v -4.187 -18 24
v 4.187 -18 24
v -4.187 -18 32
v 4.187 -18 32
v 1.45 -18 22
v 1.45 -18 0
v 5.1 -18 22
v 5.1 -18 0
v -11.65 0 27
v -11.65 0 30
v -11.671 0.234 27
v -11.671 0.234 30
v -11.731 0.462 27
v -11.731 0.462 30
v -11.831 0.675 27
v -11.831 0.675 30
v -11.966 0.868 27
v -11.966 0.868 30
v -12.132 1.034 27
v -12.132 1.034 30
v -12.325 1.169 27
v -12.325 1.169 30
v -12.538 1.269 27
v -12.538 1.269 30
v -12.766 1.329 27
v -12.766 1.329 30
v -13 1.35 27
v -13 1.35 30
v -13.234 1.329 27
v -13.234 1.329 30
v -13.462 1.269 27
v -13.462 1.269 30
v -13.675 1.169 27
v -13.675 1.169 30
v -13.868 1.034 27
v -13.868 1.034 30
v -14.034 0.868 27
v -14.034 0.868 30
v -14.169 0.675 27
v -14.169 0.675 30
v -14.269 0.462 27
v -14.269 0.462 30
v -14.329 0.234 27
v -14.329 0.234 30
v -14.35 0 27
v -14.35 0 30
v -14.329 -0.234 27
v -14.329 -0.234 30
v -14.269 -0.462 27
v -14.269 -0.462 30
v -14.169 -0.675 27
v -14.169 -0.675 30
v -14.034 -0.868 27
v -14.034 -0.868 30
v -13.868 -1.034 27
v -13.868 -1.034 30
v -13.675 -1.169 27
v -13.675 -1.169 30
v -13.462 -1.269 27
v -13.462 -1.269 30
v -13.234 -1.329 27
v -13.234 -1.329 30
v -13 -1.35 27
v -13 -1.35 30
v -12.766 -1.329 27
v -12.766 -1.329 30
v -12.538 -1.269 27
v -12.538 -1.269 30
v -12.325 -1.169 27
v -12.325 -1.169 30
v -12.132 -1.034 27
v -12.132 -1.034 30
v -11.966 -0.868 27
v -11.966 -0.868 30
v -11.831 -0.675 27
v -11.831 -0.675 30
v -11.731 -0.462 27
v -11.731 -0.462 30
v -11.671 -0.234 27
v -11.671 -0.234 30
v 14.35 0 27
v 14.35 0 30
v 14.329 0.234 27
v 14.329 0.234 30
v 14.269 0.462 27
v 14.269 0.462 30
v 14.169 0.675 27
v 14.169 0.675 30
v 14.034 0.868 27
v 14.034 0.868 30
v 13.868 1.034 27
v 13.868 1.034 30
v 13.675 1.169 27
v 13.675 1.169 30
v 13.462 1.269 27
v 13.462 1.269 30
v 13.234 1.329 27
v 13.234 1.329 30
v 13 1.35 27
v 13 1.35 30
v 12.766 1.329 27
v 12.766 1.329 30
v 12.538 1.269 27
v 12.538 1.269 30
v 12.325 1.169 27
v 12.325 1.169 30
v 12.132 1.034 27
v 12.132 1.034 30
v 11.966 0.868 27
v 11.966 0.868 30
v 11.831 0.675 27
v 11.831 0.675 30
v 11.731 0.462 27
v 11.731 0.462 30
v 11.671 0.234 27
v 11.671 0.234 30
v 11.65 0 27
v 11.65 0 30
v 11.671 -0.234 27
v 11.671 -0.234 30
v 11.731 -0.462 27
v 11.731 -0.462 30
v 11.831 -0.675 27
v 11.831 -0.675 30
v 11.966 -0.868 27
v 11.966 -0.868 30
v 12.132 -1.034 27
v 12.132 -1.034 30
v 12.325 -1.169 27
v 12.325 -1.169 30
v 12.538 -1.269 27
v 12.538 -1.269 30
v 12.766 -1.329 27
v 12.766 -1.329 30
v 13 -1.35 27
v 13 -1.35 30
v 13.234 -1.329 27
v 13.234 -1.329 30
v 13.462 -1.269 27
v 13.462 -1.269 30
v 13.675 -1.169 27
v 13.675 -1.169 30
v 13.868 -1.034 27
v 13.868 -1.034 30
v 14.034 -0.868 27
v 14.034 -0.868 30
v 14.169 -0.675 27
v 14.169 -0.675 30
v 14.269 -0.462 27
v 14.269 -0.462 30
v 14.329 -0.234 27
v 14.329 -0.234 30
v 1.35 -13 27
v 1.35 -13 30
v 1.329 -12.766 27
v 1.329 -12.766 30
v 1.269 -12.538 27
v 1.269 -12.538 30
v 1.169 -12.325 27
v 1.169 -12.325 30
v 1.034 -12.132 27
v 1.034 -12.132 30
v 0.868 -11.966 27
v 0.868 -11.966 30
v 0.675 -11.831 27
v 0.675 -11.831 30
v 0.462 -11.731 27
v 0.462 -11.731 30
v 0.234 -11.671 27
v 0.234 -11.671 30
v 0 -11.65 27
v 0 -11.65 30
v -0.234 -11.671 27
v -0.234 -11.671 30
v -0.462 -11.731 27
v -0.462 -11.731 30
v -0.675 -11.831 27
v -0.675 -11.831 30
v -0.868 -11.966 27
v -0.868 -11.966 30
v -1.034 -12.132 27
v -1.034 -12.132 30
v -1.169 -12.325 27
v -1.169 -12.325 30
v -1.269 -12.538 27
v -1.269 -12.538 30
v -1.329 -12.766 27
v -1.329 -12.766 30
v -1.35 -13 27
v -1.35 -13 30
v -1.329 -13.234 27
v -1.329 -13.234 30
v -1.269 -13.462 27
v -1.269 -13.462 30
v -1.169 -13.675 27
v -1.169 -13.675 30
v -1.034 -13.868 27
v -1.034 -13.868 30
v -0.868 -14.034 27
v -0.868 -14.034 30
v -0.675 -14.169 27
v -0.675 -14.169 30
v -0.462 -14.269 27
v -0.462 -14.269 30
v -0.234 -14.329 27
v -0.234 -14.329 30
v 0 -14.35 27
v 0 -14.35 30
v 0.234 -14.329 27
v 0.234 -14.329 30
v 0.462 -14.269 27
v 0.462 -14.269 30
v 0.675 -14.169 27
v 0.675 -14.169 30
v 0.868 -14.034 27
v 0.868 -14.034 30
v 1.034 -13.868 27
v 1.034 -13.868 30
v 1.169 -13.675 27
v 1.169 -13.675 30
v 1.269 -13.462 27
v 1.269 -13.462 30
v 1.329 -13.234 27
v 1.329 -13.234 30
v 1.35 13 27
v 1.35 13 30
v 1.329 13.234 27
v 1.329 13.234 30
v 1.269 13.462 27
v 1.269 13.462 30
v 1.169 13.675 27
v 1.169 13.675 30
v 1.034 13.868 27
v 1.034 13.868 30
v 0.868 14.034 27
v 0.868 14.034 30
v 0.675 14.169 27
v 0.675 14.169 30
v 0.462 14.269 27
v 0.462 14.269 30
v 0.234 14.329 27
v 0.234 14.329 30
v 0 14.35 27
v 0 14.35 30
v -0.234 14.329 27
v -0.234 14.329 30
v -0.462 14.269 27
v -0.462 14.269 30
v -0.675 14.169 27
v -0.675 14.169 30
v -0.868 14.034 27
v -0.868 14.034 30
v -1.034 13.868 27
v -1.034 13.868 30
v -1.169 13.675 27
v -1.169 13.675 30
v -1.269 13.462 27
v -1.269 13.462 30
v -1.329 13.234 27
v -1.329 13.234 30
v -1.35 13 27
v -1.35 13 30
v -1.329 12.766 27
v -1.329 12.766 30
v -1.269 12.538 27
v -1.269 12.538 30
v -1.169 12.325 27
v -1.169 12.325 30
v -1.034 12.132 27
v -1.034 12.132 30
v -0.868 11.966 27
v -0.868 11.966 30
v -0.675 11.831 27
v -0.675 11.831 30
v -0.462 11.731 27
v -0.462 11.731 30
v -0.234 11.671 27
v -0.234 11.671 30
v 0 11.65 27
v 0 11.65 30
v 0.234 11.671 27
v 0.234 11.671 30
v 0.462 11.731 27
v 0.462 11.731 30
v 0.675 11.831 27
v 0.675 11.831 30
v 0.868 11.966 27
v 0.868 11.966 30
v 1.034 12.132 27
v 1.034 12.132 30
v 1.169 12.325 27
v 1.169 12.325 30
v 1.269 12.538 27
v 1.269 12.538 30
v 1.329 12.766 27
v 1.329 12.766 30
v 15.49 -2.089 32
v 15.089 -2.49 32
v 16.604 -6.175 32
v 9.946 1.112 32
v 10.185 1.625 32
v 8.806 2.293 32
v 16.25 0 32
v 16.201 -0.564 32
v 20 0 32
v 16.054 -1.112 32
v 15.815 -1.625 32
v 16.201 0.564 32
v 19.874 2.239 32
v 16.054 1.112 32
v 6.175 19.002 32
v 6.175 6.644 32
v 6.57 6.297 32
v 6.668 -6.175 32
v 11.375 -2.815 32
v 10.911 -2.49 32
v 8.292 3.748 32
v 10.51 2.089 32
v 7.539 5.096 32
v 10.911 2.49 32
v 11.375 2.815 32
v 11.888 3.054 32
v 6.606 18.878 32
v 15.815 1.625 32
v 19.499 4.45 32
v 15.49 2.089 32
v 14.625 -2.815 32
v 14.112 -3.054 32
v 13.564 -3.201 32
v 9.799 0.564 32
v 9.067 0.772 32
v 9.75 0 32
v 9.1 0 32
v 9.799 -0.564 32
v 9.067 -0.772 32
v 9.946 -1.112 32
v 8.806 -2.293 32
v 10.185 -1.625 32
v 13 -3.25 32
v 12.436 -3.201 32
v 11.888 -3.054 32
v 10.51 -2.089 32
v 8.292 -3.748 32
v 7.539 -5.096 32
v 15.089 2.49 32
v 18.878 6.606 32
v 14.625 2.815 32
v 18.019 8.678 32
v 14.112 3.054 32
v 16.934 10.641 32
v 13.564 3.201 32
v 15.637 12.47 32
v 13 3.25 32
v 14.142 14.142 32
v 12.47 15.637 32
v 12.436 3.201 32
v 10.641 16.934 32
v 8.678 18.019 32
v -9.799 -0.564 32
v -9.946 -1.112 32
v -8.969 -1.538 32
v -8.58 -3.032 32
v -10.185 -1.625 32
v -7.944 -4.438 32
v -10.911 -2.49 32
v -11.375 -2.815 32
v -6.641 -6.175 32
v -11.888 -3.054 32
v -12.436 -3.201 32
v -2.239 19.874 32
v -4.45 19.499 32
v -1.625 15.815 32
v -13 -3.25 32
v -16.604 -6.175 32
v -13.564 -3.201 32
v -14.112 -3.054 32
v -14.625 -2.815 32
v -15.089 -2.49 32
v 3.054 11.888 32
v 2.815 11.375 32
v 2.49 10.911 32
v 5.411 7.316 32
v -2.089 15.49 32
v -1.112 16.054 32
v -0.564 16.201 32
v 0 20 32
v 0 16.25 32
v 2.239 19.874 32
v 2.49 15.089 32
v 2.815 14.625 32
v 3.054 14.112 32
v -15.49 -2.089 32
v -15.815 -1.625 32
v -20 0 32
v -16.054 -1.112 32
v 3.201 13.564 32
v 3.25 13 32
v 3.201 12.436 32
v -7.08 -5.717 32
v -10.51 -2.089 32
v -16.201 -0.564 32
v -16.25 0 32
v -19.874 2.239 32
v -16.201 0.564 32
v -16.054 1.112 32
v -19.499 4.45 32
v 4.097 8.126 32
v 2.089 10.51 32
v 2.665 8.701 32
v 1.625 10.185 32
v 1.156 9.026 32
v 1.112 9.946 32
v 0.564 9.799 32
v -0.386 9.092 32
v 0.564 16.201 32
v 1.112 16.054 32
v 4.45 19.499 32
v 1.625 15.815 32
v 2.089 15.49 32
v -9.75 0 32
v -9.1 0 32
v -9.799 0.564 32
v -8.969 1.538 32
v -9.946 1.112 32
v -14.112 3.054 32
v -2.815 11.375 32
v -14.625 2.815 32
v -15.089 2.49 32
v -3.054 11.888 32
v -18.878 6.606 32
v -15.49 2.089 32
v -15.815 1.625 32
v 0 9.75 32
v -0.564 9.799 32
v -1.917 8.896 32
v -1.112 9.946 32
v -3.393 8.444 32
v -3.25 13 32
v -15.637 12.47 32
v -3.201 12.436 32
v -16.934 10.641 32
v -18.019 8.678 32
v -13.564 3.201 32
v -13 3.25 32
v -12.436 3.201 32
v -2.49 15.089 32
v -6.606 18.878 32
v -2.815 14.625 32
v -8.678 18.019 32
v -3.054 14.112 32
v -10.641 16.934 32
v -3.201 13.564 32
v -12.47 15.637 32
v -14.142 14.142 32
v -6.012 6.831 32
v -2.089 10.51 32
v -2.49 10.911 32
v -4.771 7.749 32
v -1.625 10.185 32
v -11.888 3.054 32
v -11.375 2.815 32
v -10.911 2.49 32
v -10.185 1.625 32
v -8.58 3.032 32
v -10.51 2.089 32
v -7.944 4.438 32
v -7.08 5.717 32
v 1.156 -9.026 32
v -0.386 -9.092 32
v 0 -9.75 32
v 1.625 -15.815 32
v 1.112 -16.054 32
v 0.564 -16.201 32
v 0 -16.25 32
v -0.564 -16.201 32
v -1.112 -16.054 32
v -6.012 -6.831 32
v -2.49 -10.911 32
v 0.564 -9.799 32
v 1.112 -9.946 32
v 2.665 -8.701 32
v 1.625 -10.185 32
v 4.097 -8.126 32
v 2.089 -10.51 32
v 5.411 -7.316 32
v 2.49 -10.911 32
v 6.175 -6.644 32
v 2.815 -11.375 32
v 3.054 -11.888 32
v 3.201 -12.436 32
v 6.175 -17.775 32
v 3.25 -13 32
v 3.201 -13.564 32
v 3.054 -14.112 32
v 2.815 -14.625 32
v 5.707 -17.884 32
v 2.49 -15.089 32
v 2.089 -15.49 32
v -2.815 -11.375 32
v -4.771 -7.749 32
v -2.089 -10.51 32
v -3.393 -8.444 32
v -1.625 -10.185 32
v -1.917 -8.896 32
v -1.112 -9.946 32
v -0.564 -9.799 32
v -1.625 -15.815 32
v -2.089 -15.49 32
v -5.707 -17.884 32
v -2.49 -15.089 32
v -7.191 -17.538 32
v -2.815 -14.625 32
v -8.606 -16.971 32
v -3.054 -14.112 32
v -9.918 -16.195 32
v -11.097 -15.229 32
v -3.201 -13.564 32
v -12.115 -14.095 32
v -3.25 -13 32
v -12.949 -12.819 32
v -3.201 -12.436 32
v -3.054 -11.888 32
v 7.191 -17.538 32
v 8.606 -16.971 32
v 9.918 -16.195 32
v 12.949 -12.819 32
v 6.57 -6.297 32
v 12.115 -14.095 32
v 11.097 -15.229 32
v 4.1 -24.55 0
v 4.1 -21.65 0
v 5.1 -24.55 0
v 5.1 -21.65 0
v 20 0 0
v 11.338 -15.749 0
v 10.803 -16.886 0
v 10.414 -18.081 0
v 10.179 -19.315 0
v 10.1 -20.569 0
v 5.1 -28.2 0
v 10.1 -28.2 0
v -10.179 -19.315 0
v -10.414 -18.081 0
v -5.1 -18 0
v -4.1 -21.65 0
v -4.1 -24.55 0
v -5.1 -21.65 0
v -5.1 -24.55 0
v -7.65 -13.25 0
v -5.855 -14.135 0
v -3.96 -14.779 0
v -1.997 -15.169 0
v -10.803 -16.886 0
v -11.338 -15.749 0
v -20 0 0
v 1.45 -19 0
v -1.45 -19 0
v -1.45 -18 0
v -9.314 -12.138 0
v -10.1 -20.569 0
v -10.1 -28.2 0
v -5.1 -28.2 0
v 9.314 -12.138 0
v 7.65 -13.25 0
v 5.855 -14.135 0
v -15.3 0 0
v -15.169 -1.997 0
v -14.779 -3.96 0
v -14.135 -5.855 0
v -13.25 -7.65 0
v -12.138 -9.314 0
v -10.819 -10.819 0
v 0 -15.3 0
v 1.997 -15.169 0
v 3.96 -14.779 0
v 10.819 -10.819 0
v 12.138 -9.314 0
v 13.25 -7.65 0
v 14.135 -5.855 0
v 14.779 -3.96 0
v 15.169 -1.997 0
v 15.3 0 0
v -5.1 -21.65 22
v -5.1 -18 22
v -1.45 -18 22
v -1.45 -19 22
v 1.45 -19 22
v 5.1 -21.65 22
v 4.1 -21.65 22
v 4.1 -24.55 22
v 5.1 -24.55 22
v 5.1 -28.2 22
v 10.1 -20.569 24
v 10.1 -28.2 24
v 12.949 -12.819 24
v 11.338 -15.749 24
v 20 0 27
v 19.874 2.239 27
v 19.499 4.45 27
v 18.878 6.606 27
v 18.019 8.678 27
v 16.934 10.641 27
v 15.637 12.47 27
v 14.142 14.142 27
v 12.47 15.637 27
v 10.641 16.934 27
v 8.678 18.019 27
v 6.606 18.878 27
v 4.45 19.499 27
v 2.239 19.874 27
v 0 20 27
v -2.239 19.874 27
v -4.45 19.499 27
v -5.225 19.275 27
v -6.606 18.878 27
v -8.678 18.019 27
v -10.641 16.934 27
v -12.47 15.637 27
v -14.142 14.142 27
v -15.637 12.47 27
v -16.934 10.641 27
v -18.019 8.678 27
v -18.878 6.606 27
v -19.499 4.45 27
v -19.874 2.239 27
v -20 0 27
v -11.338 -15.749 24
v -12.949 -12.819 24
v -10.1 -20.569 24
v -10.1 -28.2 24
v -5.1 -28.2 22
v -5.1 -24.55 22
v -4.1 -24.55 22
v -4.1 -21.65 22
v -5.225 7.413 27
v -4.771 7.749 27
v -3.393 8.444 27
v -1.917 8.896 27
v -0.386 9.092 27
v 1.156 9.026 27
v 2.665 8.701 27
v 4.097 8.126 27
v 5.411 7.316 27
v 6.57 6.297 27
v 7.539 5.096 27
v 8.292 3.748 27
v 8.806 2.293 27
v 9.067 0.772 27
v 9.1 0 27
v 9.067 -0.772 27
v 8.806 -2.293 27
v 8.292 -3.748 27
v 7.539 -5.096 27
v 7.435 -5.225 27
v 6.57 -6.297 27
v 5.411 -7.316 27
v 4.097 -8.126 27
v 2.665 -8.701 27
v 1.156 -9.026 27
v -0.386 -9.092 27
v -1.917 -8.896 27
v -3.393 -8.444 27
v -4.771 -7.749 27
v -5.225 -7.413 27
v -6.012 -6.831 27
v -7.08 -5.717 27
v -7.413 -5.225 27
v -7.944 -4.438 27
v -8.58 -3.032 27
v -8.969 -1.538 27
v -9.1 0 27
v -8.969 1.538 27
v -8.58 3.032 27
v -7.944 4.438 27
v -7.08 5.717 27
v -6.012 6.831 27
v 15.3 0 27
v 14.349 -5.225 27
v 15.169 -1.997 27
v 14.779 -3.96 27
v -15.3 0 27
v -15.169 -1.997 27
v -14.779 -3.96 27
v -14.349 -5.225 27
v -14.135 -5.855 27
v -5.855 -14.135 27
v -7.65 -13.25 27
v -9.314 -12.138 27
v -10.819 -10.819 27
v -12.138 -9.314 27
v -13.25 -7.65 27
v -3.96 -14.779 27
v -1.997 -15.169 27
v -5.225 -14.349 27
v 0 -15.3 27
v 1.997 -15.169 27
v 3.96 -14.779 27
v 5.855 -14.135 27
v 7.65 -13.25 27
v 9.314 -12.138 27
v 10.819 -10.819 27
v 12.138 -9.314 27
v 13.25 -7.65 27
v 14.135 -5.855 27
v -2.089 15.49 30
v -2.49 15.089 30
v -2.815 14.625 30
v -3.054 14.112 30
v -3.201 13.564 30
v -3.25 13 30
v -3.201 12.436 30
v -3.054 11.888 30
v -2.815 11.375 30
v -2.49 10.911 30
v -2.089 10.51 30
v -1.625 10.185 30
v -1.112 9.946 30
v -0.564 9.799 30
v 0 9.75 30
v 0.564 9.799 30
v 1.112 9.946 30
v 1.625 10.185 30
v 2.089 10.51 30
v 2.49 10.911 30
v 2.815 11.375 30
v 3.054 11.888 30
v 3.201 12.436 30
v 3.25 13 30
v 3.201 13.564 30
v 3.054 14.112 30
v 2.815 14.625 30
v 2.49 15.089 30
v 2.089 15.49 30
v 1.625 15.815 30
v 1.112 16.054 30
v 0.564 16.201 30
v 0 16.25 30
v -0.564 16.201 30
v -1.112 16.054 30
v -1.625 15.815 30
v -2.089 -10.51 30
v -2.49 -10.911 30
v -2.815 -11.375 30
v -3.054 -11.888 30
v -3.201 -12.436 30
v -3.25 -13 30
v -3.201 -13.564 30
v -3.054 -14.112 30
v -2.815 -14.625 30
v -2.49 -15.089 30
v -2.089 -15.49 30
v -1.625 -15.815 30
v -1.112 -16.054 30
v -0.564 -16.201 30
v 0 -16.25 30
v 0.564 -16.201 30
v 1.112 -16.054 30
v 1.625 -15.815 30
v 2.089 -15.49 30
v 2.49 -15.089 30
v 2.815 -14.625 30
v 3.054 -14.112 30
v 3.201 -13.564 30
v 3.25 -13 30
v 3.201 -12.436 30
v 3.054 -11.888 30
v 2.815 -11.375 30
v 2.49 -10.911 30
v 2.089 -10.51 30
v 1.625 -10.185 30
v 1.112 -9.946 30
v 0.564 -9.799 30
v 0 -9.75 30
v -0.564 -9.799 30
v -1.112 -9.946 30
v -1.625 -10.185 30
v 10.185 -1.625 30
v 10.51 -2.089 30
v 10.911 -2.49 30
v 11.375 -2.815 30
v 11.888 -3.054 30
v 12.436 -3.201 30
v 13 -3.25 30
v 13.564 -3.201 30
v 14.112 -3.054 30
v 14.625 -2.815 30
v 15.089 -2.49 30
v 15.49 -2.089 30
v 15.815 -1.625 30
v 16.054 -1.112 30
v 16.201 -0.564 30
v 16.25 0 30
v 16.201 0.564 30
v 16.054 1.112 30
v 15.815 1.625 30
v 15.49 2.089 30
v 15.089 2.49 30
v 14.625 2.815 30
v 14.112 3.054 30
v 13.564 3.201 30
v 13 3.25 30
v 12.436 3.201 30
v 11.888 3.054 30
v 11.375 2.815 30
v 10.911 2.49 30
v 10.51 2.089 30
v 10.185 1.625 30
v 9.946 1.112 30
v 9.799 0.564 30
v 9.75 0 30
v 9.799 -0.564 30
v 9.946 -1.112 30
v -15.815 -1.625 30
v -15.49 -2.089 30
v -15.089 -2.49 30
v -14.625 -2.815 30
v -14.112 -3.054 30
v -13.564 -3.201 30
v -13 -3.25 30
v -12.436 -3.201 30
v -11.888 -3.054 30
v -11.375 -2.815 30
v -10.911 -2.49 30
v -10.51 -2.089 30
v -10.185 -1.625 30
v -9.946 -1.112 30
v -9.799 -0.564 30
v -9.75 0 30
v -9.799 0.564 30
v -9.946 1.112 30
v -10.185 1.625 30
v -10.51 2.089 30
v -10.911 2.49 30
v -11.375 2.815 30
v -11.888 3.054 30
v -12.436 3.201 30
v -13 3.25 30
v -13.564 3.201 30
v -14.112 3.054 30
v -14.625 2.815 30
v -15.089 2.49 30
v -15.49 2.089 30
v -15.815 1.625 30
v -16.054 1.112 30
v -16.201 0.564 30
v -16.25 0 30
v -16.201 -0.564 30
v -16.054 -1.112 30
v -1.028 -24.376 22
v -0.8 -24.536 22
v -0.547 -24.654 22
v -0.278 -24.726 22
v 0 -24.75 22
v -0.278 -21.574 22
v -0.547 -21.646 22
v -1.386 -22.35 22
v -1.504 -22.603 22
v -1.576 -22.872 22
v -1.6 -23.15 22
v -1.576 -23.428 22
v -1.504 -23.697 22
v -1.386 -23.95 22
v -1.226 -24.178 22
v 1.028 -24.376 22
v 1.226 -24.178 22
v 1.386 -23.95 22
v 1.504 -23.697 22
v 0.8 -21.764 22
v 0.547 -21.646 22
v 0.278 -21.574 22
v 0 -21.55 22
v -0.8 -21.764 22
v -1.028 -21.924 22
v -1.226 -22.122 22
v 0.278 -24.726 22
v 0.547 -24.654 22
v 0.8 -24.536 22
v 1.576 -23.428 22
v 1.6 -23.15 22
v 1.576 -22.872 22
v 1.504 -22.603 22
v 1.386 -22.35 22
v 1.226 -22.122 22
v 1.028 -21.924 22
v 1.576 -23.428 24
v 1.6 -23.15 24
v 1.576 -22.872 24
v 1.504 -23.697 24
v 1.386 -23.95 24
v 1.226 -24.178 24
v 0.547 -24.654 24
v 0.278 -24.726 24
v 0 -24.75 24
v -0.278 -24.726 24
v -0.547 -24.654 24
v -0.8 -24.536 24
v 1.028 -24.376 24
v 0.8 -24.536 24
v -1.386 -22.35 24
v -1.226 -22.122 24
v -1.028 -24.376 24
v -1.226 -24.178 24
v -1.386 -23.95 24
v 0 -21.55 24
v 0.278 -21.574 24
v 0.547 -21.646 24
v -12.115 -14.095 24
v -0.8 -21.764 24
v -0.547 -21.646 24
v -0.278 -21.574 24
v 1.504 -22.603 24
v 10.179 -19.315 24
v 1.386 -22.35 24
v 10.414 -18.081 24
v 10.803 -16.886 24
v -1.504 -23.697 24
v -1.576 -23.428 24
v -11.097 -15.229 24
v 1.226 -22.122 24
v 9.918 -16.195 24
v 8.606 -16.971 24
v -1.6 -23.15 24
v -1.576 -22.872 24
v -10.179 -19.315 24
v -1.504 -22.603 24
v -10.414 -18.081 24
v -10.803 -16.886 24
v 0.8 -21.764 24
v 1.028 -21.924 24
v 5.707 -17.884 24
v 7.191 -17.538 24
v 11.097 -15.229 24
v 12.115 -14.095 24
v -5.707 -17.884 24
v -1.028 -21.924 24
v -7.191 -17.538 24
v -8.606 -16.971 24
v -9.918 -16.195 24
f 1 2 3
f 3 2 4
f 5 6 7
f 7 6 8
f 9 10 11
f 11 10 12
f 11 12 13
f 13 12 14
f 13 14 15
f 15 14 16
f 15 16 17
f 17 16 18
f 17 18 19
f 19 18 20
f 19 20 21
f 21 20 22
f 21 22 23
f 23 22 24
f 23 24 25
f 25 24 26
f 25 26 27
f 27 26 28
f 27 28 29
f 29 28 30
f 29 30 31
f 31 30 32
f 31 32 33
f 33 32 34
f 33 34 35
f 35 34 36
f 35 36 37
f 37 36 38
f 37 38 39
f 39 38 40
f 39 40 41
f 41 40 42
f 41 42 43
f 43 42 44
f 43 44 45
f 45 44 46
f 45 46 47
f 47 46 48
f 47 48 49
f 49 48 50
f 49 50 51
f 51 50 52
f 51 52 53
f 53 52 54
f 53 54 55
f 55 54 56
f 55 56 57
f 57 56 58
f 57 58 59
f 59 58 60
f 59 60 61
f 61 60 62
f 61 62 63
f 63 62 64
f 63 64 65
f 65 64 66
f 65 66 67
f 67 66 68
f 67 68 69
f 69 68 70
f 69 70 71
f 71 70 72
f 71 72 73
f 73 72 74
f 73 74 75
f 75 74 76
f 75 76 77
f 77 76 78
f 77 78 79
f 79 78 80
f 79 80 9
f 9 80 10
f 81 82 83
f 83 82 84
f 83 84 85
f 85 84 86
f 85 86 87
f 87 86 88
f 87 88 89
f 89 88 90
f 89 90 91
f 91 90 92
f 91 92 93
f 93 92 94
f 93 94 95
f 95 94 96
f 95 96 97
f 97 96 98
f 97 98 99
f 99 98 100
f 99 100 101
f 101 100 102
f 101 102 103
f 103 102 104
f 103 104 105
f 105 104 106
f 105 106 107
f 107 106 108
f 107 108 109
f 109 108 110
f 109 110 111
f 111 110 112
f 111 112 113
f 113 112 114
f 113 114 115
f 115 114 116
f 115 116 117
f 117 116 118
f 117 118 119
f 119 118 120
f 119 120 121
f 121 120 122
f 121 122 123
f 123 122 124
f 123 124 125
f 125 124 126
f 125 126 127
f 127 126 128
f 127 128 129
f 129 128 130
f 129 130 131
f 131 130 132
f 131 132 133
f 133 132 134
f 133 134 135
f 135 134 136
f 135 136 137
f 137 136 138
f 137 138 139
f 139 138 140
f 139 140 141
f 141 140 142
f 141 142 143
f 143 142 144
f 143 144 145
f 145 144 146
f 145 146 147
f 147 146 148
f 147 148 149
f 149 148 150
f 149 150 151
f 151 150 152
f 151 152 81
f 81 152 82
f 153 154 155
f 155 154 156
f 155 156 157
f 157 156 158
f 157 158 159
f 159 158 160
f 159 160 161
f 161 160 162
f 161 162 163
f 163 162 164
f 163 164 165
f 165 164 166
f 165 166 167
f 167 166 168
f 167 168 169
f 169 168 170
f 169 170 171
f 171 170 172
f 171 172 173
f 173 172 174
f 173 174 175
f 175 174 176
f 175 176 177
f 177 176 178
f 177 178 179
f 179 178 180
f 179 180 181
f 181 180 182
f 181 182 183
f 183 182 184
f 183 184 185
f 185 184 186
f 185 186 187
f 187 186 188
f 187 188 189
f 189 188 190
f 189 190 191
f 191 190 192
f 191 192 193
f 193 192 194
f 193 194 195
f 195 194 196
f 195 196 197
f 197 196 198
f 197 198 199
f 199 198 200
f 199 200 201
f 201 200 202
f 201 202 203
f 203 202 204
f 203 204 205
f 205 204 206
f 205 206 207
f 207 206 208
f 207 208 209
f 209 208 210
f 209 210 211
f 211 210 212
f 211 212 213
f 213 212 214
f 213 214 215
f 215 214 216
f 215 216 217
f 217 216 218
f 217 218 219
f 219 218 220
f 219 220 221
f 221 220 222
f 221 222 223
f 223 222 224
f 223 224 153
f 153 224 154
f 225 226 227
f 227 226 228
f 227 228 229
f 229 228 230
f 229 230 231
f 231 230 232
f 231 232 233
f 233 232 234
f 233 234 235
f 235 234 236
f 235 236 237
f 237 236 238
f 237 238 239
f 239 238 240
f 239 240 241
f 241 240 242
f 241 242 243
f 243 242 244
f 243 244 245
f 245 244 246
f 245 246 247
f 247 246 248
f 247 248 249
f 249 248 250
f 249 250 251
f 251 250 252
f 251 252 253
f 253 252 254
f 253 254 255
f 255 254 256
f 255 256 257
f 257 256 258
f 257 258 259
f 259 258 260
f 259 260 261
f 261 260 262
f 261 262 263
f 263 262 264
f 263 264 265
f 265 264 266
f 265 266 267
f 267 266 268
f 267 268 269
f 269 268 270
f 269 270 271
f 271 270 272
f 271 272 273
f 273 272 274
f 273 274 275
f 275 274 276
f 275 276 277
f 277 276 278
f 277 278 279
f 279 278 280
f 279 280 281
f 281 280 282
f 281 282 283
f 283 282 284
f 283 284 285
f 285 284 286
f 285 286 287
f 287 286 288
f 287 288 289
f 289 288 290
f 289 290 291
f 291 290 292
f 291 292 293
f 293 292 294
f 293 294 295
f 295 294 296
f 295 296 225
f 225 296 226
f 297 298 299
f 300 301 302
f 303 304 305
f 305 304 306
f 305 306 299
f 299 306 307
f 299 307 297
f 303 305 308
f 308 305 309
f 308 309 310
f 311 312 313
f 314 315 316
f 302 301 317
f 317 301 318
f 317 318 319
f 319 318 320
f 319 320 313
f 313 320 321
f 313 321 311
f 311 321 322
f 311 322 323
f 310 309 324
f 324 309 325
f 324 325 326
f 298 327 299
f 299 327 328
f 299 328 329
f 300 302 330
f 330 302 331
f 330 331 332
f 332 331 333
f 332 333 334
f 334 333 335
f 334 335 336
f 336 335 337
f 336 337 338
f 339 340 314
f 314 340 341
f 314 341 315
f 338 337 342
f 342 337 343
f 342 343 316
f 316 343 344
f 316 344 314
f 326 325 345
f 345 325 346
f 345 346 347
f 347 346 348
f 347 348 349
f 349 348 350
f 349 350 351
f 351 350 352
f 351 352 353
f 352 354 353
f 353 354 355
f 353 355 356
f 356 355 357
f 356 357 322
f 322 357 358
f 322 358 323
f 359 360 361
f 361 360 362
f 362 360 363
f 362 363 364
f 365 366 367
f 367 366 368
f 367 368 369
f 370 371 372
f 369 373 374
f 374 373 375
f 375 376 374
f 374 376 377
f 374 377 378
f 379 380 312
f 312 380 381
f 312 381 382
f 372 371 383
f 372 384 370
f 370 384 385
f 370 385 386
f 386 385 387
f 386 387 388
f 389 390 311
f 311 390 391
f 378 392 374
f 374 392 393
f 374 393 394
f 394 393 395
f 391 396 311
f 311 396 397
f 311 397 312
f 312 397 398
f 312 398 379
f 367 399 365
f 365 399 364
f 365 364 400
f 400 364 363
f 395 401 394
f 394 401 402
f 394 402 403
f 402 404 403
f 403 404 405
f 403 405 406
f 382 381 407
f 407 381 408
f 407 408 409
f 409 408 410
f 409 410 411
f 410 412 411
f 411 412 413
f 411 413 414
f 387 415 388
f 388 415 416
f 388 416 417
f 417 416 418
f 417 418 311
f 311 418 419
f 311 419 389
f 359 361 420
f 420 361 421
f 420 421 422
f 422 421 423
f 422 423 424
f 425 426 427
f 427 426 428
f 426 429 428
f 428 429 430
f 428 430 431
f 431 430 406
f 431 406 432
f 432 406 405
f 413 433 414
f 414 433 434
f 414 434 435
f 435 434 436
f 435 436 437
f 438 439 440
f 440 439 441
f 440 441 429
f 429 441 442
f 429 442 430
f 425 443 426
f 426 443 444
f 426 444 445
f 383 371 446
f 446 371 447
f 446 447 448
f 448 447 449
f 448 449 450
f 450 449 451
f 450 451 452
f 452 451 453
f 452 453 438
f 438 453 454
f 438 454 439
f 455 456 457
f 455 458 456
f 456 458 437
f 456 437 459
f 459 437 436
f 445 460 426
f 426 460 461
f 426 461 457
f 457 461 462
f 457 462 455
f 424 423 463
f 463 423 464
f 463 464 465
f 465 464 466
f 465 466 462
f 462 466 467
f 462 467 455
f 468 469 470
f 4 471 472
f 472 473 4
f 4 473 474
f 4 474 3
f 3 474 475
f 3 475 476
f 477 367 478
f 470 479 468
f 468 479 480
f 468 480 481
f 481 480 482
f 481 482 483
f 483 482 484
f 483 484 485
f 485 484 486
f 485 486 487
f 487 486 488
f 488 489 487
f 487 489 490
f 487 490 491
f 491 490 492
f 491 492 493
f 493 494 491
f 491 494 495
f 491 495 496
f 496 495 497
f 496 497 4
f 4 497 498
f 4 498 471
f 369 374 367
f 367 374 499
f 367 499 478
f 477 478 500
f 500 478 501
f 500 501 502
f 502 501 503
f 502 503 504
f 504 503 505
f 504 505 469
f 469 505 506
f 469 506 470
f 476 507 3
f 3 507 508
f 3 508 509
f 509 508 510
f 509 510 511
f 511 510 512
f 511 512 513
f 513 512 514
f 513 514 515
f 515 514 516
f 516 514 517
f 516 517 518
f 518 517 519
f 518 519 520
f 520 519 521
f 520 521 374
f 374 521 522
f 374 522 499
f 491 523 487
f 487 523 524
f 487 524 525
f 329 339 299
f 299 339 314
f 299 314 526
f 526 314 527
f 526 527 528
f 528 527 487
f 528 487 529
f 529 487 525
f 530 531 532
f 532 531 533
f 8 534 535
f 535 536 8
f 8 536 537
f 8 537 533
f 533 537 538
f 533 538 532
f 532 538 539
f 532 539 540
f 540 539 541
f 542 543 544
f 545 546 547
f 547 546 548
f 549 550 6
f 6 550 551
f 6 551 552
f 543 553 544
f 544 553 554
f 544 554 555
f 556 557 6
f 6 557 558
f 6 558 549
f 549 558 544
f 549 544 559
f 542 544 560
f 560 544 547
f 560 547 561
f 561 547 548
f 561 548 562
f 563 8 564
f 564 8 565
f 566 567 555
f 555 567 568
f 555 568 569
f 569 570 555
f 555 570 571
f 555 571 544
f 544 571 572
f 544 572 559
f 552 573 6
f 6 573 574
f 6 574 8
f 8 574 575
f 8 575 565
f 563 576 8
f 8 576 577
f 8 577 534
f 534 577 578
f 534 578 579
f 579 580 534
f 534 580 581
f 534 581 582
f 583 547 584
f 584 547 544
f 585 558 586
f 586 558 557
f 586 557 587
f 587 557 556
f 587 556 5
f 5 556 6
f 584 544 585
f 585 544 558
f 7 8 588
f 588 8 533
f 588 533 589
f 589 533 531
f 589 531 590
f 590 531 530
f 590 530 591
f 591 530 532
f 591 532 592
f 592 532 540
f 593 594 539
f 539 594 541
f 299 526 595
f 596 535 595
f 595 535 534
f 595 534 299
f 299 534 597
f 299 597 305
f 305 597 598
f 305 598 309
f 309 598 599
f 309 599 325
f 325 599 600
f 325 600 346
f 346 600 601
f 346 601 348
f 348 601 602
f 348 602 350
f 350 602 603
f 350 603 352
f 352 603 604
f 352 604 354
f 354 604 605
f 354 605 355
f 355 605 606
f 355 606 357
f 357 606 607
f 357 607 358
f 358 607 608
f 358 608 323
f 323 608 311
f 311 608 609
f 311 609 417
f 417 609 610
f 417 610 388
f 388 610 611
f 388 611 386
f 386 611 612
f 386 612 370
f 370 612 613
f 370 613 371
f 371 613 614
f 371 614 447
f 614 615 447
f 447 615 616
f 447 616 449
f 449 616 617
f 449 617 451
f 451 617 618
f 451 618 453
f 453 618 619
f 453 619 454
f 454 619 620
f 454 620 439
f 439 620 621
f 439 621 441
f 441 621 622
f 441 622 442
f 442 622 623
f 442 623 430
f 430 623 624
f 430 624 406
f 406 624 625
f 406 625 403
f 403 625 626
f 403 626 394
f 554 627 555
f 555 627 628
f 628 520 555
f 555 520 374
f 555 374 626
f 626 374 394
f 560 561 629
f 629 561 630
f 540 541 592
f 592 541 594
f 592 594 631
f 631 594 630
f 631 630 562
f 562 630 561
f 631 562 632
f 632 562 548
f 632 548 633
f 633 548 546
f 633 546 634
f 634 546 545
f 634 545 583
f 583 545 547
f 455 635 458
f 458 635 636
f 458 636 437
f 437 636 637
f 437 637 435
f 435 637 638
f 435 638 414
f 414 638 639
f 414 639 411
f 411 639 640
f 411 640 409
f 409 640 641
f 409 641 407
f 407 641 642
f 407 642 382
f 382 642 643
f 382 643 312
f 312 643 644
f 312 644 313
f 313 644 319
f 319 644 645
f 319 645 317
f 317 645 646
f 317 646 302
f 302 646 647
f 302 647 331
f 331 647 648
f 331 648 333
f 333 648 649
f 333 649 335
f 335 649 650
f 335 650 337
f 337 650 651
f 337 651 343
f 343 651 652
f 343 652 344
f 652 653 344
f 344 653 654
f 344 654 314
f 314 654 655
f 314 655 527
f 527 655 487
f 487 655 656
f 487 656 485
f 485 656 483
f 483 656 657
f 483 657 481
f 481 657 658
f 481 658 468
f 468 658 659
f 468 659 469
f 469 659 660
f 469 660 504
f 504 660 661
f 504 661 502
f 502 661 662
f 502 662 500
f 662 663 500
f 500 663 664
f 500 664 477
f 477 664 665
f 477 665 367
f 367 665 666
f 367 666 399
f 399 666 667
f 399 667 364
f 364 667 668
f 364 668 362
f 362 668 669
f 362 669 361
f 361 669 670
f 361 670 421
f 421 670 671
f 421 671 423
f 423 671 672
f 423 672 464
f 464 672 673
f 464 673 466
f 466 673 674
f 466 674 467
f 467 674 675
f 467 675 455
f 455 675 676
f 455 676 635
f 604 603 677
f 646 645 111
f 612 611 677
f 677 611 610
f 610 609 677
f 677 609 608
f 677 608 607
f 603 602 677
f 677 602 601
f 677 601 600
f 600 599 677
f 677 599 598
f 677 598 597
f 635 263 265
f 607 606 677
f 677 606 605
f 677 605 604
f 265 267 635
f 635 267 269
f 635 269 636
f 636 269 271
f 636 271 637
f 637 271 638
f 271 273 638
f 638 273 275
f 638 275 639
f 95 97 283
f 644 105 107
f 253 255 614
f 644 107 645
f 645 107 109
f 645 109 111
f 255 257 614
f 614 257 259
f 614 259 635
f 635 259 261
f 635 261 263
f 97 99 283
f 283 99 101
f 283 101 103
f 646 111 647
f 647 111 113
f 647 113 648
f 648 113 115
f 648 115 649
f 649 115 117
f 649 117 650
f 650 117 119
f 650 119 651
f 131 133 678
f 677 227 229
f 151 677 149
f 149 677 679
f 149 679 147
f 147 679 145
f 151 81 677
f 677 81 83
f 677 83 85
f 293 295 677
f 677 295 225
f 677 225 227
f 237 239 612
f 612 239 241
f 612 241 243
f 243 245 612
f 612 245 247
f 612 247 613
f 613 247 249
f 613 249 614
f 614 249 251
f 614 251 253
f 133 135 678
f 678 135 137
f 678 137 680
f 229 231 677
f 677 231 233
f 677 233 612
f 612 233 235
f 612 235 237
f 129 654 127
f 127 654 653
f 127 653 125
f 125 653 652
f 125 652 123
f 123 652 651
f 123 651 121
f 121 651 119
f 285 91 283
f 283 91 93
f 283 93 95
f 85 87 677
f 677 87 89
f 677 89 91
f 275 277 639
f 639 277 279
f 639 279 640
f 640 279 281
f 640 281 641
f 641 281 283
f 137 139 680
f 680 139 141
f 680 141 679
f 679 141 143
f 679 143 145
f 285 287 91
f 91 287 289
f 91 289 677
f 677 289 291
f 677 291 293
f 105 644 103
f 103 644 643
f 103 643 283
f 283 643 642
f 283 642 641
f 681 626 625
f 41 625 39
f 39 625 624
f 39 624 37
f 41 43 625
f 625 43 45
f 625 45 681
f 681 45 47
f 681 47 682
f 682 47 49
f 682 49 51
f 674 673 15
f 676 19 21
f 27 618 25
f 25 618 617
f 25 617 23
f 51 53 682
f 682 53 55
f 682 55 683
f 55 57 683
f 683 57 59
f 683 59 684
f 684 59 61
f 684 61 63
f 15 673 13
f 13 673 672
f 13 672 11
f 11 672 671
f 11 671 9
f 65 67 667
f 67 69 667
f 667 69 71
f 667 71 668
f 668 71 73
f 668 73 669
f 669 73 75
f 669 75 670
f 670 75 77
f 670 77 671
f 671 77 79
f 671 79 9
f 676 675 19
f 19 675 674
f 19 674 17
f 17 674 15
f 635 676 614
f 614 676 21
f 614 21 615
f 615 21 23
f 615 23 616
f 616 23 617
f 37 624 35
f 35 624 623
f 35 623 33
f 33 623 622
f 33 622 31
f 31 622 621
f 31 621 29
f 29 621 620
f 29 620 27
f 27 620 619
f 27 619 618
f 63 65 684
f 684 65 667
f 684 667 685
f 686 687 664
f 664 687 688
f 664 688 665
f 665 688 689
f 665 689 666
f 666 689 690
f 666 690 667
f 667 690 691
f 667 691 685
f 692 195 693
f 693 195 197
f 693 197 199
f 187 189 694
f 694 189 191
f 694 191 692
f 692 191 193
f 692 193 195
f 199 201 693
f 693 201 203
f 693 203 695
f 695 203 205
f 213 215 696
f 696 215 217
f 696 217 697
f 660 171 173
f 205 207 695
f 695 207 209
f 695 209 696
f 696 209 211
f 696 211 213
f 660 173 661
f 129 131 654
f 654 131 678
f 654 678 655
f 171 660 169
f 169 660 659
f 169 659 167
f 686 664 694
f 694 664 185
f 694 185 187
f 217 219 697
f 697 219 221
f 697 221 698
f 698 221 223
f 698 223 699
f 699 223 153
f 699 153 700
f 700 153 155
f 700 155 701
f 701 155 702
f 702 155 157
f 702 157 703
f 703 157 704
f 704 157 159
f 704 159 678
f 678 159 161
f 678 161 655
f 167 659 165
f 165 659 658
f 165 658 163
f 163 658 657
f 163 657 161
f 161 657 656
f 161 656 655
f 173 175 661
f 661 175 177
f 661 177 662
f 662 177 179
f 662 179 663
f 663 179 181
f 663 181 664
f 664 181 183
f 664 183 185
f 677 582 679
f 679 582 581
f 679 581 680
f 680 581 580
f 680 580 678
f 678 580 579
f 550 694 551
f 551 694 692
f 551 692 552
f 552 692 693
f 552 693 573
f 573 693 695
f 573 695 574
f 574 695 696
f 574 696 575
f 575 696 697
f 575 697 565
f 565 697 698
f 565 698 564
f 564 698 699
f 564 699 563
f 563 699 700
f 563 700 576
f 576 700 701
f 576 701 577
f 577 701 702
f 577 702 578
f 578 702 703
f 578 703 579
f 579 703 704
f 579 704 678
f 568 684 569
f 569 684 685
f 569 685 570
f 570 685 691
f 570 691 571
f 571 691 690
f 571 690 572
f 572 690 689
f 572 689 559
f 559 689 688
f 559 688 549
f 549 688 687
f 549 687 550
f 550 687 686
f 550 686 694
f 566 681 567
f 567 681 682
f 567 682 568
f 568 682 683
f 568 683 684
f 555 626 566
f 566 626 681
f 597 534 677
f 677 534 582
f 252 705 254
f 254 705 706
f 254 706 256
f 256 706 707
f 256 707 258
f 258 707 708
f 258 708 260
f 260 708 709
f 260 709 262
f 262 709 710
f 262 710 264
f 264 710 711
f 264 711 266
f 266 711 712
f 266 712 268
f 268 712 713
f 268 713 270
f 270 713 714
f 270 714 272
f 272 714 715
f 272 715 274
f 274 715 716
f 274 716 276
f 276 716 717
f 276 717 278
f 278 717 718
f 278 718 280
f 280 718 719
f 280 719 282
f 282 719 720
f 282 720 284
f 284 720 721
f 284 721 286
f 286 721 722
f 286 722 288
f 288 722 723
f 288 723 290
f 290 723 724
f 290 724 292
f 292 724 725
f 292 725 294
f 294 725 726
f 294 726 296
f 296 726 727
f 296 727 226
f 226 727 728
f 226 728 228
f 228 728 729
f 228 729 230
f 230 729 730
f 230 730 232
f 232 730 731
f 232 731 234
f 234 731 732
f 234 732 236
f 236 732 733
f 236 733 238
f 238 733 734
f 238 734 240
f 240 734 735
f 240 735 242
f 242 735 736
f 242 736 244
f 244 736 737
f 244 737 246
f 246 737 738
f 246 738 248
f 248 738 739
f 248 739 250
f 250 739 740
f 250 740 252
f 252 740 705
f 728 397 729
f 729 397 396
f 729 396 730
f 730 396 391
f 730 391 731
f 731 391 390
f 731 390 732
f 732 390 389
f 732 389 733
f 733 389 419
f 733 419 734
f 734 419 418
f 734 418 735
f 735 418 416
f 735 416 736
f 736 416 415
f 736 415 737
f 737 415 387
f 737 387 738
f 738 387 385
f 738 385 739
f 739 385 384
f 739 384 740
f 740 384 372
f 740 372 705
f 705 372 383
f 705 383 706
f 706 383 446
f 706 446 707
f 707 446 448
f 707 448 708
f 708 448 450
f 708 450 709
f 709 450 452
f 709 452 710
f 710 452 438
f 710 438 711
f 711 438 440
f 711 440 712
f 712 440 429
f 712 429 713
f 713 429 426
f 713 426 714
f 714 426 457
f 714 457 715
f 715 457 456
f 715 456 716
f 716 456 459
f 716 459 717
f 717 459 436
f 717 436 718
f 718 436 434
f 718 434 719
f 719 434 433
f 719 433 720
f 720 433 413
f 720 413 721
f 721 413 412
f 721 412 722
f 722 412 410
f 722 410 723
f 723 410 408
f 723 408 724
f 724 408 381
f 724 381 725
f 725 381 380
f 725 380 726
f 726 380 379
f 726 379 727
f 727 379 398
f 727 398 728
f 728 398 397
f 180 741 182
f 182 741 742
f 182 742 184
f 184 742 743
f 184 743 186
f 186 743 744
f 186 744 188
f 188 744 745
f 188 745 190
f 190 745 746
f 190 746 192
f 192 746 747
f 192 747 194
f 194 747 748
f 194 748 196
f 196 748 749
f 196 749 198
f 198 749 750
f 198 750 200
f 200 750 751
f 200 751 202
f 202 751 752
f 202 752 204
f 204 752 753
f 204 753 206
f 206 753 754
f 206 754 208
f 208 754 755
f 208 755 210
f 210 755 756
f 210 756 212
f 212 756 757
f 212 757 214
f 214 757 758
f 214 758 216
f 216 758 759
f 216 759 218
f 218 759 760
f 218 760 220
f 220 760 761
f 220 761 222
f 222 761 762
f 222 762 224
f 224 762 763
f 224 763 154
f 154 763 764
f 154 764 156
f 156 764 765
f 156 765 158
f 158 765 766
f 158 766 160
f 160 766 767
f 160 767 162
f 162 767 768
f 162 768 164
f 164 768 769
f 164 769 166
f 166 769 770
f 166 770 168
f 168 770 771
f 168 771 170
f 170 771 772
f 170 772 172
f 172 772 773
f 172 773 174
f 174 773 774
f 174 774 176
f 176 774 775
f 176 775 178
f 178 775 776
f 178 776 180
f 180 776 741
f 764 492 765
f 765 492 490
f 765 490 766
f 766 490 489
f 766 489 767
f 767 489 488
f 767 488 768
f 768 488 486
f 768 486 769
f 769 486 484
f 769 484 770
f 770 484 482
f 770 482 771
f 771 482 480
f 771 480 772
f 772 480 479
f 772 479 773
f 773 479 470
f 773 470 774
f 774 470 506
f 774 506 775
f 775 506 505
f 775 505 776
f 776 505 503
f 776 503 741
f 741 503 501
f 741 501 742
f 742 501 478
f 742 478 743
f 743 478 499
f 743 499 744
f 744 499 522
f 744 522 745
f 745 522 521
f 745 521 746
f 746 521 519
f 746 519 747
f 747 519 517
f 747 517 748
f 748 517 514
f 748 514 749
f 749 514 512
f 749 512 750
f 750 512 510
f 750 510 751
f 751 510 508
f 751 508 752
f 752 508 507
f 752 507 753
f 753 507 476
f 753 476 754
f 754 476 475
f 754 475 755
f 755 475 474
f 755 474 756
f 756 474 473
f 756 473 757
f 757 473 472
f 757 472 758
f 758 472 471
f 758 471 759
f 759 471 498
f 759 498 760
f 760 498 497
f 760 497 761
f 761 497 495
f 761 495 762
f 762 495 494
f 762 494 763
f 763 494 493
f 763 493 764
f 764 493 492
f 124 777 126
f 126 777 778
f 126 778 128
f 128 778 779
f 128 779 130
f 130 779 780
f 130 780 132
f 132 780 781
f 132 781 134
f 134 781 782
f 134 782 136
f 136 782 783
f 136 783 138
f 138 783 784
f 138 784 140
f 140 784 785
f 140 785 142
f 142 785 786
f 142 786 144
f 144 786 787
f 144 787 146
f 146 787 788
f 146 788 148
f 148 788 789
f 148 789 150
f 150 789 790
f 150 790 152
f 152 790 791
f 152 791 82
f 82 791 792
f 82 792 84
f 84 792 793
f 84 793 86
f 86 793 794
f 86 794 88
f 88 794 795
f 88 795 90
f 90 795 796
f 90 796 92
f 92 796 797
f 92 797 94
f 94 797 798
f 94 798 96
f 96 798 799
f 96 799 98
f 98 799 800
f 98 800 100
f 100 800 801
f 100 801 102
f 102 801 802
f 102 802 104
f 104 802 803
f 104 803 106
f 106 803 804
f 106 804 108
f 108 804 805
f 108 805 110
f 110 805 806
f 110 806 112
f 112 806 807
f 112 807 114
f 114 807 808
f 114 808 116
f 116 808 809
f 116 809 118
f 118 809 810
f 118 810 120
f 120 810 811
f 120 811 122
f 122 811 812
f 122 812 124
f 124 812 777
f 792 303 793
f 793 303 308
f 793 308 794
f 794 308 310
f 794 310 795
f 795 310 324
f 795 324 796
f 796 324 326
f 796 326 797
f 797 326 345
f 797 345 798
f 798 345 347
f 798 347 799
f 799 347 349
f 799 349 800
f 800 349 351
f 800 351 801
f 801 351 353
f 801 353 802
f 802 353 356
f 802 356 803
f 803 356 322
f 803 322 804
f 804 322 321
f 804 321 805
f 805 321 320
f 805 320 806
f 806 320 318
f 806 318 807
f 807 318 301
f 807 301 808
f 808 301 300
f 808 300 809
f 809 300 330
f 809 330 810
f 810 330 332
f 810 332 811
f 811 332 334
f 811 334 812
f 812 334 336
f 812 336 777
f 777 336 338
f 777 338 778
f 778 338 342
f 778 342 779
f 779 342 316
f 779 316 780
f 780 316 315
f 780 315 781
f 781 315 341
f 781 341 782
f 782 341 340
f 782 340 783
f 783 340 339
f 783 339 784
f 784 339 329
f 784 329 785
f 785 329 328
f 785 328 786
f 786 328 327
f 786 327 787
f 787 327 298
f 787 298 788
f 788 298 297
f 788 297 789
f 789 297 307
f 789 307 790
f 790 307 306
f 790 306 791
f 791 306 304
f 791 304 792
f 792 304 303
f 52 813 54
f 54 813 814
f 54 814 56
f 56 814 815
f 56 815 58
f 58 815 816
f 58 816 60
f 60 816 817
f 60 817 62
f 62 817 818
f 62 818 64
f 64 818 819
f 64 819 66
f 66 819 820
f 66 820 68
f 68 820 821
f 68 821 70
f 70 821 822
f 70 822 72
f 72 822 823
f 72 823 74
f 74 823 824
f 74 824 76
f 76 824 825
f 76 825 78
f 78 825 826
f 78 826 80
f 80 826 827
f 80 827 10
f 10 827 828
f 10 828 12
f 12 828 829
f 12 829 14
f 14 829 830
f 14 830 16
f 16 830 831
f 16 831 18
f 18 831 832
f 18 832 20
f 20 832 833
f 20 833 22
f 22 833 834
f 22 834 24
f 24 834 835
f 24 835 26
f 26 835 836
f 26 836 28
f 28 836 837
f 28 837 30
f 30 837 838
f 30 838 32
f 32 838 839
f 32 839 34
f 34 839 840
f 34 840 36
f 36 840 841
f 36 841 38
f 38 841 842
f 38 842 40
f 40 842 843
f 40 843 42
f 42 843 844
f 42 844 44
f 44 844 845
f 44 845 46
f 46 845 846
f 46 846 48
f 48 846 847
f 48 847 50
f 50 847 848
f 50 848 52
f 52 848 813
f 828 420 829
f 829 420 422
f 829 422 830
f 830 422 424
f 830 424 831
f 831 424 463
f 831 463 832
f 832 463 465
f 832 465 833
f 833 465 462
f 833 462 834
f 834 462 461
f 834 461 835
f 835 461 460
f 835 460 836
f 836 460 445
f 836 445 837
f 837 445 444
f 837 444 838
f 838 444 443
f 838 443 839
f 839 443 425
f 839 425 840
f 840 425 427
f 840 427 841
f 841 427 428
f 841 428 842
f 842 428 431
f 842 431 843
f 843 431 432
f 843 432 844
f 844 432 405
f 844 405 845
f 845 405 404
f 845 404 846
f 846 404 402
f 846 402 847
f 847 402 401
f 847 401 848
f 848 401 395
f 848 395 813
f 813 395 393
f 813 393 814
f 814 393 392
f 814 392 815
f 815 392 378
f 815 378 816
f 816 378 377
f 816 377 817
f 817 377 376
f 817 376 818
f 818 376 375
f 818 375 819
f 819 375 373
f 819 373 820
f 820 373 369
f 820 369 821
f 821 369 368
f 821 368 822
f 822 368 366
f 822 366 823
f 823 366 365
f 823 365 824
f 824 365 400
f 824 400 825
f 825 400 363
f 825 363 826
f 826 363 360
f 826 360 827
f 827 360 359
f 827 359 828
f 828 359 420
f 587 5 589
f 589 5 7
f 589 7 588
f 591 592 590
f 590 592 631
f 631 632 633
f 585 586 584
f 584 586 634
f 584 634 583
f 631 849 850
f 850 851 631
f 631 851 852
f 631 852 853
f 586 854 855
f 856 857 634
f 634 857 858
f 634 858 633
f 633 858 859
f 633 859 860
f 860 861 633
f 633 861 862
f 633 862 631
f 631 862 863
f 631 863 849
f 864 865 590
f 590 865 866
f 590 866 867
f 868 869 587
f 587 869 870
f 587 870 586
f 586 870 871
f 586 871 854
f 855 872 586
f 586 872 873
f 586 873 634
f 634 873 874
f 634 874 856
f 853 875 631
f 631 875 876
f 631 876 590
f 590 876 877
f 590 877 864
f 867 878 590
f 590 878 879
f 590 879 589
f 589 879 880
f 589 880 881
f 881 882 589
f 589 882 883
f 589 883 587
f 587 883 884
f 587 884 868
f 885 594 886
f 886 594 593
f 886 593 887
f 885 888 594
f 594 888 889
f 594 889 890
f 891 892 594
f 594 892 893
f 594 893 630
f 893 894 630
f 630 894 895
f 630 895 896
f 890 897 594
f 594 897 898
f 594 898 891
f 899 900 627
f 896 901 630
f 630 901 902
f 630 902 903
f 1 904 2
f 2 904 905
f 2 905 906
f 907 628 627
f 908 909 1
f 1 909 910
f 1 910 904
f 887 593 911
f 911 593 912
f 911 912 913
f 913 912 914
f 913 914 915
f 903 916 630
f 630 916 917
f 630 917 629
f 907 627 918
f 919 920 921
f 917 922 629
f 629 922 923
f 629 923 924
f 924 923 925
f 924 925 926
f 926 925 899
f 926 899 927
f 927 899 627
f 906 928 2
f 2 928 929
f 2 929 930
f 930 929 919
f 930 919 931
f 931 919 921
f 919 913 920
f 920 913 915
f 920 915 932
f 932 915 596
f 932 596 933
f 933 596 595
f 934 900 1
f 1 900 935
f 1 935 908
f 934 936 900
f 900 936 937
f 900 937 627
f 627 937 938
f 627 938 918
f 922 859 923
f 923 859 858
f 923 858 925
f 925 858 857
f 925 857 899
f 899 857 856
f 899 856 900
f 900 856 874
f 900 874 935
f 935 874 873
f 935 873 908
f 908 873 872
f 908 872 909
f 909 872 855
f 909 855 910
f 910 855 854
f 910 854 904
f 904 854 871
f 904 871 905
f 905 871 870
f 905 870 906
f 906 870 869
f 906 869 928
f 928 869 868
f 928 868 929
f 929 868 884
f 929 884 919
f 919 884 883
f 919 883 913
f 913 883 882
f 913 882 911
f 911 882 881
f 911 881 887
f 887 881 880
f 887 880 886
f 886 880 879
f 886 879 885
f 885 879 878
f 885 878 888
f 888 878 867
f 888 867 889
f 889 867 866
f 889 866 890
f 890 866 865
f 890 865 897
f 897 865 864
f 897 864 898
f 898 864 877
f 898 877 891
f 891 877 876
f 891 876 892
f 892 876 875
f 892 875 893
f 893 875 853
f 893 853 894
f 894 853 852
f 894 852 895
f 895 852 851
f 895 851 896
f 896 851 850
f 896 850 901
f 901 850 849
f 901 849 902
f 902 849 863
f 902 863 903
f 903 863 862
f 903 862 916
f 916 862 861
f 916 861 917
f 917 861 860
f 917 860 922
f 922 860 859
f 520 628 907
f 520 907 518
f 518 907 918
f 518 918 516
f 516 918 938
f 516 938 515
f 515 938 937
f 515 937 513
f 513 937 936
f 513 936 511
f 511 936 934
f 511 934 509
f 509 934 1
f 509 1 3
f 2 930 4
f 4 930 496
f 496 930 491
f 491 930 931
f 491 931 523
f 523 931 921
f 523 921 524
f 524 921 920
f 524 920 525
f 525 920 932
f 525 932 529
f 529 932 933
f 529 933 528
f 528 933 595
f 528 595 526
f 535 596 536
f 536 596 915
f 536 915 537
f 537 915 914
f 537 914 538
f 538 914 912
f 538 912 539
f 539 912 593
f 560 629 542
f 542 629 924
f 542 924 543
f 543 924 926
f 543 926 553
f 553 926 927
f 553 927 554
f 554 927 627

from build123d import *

# Parameters (mm, degrees)
SKETCH1_R                 = 9.1
MAIN_DEPTH                = 32
SKETCH2_R                 = 1.35
FIXHOLEMOTORS_DEPTH       = 33
HOLECIRCULARPATTERN_COUNT = 4
SKETCH3_R                 = 15.3
MOTORMAINHOLE_DEPTH       = 27
SKETCH4_W                 = 40
SKETCH4_H                 = 20
CUT_EXTRUDE3_DEPTH        = 27
SKETCH5_R                 = 3.25
HEADSCREWHOLE_DEPTH       = 2
SKETCH6_W                 = 20.2
SKETCH6_H                 = 10.2
WHEELCUT_DEPTH            = 10
SKETCH7_W                 = 20.2
SKETCH7_H                 = 10.2
SKETCH7_R                 = 1.6
BOSS_EXTRUDE2_DEPTH       = 2
FILLET1_R                 = 10
FILLET2_R                 = 10


with BuildPart() as part:
    # Sketch1 → Main (new body)
    with BuildSketch(Plane.XY):
        with BuildLine():
            Line((-5.1, -18), (-1.45, -18))
            Line((-1.45, -18), (-1.45, -19))
            Line((-1.45, -19), (1.45, -19))
            Line((1.45, -19), (1.45, -18))
            Line((1.45, -18), (5.1, -18))
            Line((5.1, -18), (5.1, -21.65))
            Line((5.1, -21.65), (4.1, -21.65))
            Line((4.1, -21.65), (4.1, -24.55))
            Line((4.1, -24.55), (5.1, -24.55))
            Line((5.1, -24.55), (5.1, -28.2))
            Line((5.1, -28.2), (10.1, -28.2))
            Line((10.1, -28.2), (10.1, -18))
            Line((10.1, -18), (20, 0))
            ThreePointArc((20, 0), (0, 20), (-20, 0))
            Line((-20, 0), (-10.1, -18))
            Line((-10.1, -18), (-10.1, -28.2))
            Line((-10.1, -28.2), (-5.1, -28.2))
            Line((-5.1, -28.2), (-5.1, -24.55))
            Line((-5.1, -24.55), (-4.1, -24.55))
            Line((-4.1, -24.55), (-4.1, -21.65))
            Line((-4.1, -21.65), (-5.1, -21.65))
            Line((-5.1, -21.65), (-5.1, -18))
        make_face()
        Circle(SKETCH1_R, mode=Mode.SUBTRACT)
    extrude(amount=MAIN_DEPTH)

    # Sketch2 → FixHoleMotors (cut, through all)
    with BuildSketch(Plane.XY.offset(32)):
        with Locations((0, 13)):
            Circle(SKETCH2_R)
    fixholemotors = extrude(amount=-FIXHOLEMOTORS_DEPTH, mode=Mode.SUBTRACT)

    # HoleCircularPattern: FixHoleMotors ×4 about axis
    holecircularpattern_axis = Axis((0, 0, 0), (0, 0, 1))
    for i in range(1, HOLECIRCULARPATTERN_COUNT):
        add(fixholemotors.rotate(holecircularpattern_axis, i * 360 / HOLECIRCULARPATTERN_COUNT), mode=Mode.SUBTRACT)

    # Sketch3 → MotorMainHole (cut)
    with BuildSketch(Plane.XY):
        Circle(SKETCH3_R)
    extrude(amount=MOTORMAINHOLE_DEPTH, mode=Mode.SUBTRACT)

    # Sketch4 → Cut-Extrude3 (cut)
    with BuildSketch(Plane(origin=(0, 0, 0), x_dir=(-1, 0, 0), z_dir=(0, 0, -1))):
        with Locations((0, 10)):
            Rectangle(SKETCH4_W, SKETCH4_H)
    extrude(amount=-CUT_EXTRUDE3_DEPTH, mode=Mode.SUBTRACT)

    # Sketch5 → HeadScrewHole (cut)
    with BuildSketch(Plane.XY.offset(32)):
        with Locations((0, 13)):
            Circle(SKETCH5_R)
        with Locations((13, 0)):
            Circle(SKETCH5_R)
        with Locations((0, -13)):
            Circle(SKETCH5_R)
        with Locations((-13, 0)):
            Circle(SKETCH5_R)
    extrude(amount=-HEADSCREWHOLE_DEPTH, mode=Mode.SUBTRACT)

    # Sketch6 → WheelCut (cut)
    with BuildSketch(Plane.XY.offset(32)):
        with Locations((0, -23.1)):
            Rectangle(SKETCH6_W, SKETCH6_H)
    extrude(amount=-WHEELCUT_DEPTH, mode=Mode.SUBTRACT)

    # Sketch7 → Boss-Extrude2 (add)
    with BuildSketch(Plane.XY.offset(22)):
        with Locations((0, -23.1)):
            Rectangle(SKETCH7_W, SKETCH7_H)
        with Locations((0, -23.15)):
            Circle(SKETCH7_R, mode=Mode.SUBTRACT)
    extrude(amount=BOSS_EXTRUDE2_DEPTH)

    # Fillet1
    fillet1_edges = [part.edges().sort_by_distance(p)[0] for p in [
        (-10.1, -18, 28),
        (10.1, -18, 28),
    ]]
    fillet(fillet1_edges, radius=FILLET1_R)

    # Fillet2
    fillet2_edges = [part.edges().sort_by_distance(p)[0] for p in [
        (-10.1, -18, 12),
        (10.1, -18, 12),
    ]]
    fillet(fillet2_edges, radius=FILLET2_R)


solid = part.part
